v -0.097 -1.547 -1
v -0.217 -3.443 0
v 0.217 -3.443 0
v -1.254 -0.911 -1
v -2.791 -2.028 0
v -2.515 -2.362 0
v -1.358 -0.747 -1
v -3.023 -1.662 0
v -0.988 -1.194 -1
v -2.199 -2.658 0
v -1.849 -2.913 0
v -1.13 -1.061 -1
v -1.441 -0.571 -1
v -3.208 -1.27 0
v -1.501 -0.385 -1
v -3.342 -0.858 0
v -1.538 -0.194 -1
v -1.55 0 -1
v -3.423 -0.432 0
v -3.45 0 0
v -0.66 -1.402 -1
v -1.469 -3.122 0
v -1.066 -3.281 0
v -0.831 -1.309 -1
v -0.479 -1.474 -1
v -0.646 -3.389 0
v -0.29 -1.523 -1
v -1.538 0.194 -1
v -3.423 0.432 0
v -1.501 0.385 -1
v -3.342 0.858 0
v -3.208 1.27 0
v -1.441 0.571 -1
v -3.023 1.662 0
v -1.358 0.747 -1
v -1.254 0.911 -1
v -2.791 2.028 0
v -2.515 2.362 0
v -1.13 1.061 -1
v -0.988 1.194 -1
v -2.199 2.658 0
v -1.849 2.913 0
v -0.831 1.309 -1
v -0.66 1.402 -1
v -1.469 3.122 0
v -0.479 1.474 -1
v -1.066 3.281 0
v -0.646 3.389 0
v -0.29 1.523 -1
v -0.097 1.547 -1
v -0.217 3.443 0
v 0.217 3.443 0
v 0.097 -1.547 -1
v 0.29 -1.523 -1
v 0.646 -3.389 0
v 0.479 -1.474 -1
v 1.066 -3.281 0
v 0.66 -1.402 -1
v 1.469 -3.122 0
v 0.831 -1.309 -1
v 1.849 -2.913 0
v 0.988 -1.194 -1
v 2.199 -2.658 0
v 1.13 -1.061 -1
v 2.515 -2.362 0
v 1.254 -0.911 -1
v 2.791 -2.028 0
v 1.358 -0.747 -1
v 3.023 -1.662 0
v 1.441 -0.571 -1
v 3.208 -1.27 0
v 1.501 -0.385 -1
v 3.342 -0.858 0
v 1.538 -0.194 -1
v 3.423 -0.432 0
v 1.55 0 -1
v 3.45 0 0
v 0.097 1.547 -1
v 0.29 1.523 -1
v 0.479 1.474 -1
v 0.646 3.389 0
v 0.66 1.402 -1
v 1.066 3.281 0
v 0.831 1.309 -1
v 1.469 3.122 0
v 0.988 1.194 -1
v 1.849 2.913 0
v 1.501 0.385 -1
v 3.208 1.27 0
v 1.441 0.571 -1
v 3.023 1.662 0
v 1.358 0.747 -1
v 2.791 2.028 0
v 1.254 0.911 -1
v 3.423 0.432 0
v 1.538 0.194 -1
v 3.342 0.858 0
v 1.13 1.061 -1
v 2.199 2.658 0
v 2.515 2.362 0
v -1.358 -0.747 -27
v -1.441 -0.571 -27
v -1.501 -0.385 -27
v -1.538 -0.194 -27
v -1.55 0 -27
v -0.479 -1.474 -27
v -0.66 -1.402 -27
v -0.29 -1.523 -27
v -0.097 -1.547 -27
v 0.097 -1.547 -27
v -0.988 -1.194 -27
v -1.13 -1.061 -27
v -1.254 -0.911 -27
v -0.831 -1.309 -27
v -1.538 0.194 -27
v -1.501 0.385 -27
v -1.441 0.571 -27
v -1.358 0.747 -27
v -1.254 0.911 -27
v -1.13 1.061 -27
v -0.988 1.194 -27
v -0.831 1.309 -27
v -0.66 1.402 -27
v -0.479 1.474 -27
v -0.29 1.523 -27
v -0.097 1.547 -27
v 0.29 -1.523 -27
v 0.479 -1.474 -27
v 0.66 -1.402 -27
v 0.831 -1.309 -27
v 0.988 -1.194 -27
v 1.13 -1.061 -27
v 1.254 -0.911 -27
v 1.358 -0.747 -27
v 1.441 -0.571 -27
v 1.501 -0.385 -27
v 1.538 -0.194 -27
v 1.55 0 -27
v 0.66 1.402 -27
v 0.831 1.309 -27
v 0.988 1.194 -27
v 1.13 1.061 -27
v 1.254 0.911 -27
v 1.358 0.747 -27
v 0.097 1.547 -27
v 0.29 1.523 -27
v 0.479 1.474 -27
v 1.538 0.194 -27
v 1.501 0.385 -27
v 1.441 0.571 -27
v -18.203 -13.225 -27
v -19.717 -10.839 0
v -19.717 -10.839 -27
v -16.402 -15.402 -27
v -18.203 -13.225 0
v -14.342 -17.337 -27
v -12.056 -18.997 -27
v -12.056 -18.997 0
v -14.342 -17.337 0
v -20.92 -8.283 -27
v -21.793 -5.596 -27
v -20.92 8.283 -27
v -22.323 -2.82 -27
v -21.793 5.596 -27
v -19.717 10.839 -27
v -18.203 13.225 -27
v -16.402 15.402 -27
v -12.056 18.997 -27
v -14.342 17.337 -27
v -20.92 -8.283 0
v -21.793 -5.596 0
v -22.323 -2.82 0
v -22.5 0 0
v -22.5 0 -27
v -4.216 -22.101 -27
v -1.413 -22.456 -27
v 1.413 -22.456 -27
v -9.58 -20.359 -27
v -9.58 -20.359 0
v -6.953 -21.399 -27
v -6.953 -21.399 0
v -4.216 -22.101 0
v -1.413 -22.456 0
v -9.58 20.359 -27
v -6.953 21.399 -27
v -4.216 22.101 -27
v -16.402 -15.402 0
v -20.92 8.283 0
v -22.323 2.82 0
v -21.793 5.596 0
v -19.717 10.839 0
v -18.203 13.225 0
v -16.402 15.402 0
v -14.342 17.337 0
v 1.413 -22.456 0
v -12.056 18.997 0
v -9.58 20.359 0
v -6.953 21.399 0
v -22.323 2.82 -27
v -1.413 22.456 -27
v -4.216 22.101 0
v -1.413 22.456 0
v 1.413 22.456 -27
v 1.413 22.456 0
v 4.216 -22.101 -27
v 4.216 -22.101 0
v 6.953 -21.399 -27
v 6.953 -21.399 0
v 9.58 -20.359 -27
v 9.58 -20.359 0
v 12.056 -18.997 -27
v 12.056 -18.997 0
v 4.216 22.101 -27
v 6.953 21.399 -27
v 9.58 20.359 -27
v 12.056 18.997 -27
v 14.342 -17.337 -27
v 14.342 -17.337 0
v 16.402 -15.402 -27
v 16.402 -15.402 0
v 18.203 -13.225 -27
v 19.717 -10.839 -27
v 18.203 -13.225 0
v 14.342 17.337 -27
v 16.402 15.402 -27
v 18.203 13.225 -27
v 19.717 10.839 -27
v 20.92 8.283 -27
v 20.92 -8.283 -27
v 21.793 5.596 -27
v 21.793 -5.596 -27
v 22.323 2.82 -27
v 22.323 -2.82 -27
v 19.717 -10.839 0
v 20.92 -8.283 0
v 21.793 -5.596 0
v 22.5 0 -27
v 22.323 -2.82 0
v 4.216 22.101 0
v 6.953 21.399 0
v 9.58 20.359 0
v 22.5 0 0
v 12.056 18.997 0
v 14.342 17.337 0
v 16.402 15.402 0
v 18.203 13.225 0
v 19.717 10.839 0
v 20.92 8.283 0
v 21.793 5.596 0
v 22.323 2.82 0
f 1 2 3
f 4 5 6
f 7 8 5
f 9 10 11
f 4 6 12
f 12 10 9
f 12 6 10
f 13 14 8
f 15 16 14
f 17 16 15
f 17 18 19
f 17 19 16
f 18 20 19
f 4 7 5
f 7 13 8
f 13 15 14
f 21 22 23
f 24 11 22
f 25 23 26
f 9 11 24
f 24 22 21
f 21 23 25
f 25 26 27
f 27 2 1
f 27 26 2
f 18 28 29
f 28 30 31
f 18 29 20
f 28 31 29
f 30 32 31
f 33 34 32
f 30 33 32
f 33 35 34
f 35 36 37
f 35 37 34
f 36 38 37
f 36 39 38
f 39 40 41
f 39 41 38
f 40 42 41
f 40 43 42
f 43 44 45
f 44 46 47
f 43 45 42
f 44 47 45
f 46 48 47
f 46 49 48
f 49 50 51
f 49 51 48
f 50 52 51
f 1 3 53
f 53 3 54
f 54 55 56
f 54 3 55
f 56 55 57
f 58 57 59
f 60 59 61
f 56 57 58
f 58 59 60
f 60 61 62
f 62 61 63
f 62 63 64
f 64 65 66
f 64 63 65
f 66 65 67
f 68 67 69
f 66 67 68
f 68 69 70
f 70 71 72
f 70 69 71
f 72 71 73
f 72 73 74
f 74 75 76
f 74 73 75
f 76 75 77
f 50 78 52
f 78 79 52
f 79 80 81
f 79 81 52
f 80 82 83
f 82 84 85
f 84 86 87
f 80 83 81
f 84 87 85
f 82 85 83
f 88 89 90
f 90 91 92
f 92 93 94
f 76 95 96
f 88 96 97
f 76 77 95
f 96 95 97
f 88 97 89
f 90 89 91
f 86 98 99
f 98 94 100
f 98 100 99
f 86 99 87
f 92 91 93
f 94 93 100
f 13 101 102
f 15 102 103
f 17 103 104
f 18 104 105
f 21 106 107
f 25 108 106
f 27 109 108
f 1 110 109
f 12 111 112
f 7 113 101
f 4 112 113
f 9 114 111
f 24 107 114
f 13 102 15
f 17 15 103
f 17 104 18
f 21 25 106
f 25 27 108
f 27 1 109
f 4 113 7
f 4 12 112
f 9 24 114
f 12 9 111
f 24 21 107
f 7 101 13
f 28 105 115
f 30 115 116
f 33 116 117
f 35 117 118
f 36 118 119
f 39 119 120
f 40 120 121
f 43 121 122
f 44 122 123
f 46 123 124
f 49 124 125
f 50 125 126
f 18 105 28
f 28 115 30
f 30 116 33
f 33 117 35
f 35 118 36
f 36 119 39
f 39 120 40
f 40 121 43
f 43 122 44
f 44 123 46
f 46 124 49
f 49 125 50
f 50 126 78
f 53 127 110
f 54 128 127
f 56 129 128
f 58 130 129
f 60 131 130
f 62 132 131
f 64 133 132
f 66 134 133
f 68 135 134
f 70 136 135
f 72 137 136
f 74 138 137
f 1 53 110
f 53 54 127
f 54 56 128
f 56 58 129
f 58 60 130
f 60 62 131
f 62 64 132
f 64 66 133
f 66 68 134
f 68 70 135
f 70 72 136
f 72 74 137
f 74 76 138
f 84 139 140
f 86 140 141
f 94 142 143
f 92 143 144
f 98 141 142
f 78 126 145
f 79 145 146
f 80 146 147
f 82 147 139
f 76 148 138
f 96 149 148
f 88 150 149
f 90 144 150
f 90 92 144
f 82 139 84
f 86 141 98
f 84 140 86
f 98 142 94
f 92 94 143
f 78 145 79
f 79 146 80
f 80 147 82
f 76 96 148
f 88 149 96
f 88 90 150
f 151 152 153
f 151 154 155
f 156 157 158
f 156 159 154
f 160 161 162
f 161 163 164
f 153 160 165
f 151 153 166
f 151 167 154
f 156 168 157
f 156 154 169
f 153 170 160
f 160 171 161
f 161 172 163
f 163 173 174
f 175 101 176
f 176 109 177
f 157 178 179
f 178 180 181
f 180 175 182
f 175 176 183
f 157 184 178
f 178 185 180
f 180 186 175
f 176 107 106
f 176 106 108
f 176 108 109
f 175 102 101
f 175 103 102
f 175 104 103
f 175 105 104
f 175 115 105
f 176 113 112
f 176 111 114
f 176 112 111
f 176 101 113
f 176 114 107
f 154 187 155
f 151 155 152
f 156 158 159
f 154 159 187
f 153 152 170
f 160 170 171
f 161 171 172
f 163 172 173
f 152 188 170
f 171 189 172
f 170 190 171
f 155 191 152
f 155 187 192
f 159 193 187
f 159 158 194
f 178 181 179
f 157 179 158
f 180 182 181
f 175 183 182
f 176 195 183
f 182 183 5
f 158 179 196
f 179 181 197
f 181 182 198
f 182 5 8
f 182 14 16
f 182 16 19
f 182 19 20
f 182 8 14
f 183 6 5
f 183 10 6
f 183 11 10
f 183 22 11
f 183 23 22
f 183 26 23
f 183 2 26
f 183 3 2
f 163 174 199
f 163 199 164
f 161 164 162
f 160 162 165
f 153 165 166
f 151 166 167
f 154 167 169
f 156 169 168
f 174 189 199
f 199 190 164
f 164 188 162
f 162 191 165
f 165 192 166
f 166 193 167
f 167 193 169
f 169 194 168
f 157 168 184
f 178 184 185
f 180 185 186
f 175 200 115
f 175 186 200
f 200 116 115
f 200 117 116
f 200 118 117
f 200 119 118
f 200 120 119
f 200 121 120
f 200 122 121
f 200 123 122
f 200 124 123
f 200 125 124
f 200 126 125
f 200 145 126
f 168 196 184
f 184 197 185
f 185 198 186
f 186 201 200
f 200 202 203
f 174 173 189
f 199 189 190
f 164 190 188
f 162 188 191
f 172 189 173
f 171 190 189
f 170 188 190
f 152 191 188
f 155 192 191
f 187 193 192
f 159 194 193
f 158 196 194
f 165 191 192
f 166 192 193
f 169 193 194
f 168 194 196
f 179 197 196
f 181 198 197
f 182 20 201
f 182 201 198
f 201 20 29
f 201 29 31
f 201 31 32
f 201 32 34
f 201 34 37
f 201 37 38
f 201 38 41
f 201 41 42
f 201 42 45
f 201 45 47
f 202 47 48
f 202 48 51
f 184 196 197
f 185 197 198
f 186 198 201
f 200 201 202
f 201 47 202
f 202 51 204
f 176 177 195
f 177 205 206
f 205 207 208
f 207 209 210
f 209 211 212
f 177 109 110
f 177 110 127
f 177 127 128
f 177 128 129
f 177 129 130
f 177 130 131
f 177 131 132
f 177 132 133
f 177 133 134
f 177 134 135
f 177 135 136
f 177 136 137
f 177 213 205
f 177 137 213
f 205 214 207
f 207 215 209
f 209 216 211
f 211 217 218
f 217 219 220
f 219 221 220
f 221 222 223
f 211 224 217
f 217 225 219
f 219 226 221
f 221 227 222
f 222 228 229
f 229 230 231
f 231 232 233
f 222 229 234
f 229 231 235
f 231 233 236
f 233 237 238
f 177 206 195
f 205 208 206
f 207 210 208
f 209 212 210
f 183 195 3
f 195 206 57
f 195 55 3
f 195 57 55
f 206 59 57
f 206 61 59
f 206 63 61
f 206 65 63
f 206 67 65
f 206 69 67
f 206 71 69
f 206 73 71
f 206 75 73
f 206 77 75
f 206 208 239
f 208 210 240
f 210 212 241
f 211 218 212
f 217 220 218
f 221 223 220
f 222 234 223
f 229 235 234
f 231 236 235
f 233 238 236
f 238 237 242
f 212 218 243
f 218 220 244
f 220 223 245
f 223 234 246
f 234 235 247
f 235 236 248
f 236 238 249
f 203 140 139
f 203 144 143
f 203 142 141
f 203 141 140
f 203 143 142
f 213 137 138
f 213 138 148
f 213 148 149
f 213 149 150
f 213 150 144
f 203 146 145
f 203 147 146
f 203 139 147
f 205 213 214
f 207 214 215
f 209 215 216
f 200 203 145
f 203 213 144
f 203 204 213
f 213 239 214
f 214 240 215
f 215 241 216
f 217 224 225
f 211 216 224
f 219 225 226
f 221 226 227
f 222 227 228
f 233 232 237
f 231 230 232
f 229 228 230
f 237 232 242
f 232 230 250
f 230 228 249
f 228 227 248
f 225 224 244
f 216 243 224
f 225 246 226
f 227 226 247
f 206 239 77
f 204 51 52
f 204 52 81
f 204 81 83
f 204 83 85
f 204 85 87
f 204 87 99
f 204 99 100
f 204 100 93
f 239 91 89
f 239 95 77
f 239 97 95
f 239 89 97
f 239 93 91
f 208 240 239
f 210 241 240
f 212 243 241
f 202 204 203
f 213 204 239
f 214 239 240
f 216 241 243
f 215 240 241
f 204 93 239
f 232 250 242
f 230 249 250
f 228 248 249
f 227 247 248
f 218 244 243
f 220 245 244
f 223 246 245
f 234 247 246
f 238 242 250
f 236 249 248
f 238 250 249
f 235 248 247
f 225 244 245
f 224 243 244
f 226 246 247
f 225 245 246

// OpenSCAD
$fn = 50;

difference() {
	union() {
		translate(v = [0, 0, -27.0]) {
			cylinder(h = 27, r = 22.5);
		}
	}
	union() {
		translate(v = [0, 0, 0]) {
			rotate(a = [0, 0, 0]) {
				difference() {
					union() {
						translate(v = [0, 0, -30.0]) {
							cylinder(h = 30, r = 1.25);
						}
						translate(v = [0, 0, -1.0]) {
							cylinder(h = 1.0, r1 = 1.55, r2 = 3.45);
						}
						translate(v = [0, 0, -30.0]) {
							cylinder(h = 30, r = 1.55);
						}
						translate(v = [0, 0, -30.0]) {
							cylinder(h = 30, r = 1.25);
						}
					}
					union();
				}
			}
		}
	}
}
